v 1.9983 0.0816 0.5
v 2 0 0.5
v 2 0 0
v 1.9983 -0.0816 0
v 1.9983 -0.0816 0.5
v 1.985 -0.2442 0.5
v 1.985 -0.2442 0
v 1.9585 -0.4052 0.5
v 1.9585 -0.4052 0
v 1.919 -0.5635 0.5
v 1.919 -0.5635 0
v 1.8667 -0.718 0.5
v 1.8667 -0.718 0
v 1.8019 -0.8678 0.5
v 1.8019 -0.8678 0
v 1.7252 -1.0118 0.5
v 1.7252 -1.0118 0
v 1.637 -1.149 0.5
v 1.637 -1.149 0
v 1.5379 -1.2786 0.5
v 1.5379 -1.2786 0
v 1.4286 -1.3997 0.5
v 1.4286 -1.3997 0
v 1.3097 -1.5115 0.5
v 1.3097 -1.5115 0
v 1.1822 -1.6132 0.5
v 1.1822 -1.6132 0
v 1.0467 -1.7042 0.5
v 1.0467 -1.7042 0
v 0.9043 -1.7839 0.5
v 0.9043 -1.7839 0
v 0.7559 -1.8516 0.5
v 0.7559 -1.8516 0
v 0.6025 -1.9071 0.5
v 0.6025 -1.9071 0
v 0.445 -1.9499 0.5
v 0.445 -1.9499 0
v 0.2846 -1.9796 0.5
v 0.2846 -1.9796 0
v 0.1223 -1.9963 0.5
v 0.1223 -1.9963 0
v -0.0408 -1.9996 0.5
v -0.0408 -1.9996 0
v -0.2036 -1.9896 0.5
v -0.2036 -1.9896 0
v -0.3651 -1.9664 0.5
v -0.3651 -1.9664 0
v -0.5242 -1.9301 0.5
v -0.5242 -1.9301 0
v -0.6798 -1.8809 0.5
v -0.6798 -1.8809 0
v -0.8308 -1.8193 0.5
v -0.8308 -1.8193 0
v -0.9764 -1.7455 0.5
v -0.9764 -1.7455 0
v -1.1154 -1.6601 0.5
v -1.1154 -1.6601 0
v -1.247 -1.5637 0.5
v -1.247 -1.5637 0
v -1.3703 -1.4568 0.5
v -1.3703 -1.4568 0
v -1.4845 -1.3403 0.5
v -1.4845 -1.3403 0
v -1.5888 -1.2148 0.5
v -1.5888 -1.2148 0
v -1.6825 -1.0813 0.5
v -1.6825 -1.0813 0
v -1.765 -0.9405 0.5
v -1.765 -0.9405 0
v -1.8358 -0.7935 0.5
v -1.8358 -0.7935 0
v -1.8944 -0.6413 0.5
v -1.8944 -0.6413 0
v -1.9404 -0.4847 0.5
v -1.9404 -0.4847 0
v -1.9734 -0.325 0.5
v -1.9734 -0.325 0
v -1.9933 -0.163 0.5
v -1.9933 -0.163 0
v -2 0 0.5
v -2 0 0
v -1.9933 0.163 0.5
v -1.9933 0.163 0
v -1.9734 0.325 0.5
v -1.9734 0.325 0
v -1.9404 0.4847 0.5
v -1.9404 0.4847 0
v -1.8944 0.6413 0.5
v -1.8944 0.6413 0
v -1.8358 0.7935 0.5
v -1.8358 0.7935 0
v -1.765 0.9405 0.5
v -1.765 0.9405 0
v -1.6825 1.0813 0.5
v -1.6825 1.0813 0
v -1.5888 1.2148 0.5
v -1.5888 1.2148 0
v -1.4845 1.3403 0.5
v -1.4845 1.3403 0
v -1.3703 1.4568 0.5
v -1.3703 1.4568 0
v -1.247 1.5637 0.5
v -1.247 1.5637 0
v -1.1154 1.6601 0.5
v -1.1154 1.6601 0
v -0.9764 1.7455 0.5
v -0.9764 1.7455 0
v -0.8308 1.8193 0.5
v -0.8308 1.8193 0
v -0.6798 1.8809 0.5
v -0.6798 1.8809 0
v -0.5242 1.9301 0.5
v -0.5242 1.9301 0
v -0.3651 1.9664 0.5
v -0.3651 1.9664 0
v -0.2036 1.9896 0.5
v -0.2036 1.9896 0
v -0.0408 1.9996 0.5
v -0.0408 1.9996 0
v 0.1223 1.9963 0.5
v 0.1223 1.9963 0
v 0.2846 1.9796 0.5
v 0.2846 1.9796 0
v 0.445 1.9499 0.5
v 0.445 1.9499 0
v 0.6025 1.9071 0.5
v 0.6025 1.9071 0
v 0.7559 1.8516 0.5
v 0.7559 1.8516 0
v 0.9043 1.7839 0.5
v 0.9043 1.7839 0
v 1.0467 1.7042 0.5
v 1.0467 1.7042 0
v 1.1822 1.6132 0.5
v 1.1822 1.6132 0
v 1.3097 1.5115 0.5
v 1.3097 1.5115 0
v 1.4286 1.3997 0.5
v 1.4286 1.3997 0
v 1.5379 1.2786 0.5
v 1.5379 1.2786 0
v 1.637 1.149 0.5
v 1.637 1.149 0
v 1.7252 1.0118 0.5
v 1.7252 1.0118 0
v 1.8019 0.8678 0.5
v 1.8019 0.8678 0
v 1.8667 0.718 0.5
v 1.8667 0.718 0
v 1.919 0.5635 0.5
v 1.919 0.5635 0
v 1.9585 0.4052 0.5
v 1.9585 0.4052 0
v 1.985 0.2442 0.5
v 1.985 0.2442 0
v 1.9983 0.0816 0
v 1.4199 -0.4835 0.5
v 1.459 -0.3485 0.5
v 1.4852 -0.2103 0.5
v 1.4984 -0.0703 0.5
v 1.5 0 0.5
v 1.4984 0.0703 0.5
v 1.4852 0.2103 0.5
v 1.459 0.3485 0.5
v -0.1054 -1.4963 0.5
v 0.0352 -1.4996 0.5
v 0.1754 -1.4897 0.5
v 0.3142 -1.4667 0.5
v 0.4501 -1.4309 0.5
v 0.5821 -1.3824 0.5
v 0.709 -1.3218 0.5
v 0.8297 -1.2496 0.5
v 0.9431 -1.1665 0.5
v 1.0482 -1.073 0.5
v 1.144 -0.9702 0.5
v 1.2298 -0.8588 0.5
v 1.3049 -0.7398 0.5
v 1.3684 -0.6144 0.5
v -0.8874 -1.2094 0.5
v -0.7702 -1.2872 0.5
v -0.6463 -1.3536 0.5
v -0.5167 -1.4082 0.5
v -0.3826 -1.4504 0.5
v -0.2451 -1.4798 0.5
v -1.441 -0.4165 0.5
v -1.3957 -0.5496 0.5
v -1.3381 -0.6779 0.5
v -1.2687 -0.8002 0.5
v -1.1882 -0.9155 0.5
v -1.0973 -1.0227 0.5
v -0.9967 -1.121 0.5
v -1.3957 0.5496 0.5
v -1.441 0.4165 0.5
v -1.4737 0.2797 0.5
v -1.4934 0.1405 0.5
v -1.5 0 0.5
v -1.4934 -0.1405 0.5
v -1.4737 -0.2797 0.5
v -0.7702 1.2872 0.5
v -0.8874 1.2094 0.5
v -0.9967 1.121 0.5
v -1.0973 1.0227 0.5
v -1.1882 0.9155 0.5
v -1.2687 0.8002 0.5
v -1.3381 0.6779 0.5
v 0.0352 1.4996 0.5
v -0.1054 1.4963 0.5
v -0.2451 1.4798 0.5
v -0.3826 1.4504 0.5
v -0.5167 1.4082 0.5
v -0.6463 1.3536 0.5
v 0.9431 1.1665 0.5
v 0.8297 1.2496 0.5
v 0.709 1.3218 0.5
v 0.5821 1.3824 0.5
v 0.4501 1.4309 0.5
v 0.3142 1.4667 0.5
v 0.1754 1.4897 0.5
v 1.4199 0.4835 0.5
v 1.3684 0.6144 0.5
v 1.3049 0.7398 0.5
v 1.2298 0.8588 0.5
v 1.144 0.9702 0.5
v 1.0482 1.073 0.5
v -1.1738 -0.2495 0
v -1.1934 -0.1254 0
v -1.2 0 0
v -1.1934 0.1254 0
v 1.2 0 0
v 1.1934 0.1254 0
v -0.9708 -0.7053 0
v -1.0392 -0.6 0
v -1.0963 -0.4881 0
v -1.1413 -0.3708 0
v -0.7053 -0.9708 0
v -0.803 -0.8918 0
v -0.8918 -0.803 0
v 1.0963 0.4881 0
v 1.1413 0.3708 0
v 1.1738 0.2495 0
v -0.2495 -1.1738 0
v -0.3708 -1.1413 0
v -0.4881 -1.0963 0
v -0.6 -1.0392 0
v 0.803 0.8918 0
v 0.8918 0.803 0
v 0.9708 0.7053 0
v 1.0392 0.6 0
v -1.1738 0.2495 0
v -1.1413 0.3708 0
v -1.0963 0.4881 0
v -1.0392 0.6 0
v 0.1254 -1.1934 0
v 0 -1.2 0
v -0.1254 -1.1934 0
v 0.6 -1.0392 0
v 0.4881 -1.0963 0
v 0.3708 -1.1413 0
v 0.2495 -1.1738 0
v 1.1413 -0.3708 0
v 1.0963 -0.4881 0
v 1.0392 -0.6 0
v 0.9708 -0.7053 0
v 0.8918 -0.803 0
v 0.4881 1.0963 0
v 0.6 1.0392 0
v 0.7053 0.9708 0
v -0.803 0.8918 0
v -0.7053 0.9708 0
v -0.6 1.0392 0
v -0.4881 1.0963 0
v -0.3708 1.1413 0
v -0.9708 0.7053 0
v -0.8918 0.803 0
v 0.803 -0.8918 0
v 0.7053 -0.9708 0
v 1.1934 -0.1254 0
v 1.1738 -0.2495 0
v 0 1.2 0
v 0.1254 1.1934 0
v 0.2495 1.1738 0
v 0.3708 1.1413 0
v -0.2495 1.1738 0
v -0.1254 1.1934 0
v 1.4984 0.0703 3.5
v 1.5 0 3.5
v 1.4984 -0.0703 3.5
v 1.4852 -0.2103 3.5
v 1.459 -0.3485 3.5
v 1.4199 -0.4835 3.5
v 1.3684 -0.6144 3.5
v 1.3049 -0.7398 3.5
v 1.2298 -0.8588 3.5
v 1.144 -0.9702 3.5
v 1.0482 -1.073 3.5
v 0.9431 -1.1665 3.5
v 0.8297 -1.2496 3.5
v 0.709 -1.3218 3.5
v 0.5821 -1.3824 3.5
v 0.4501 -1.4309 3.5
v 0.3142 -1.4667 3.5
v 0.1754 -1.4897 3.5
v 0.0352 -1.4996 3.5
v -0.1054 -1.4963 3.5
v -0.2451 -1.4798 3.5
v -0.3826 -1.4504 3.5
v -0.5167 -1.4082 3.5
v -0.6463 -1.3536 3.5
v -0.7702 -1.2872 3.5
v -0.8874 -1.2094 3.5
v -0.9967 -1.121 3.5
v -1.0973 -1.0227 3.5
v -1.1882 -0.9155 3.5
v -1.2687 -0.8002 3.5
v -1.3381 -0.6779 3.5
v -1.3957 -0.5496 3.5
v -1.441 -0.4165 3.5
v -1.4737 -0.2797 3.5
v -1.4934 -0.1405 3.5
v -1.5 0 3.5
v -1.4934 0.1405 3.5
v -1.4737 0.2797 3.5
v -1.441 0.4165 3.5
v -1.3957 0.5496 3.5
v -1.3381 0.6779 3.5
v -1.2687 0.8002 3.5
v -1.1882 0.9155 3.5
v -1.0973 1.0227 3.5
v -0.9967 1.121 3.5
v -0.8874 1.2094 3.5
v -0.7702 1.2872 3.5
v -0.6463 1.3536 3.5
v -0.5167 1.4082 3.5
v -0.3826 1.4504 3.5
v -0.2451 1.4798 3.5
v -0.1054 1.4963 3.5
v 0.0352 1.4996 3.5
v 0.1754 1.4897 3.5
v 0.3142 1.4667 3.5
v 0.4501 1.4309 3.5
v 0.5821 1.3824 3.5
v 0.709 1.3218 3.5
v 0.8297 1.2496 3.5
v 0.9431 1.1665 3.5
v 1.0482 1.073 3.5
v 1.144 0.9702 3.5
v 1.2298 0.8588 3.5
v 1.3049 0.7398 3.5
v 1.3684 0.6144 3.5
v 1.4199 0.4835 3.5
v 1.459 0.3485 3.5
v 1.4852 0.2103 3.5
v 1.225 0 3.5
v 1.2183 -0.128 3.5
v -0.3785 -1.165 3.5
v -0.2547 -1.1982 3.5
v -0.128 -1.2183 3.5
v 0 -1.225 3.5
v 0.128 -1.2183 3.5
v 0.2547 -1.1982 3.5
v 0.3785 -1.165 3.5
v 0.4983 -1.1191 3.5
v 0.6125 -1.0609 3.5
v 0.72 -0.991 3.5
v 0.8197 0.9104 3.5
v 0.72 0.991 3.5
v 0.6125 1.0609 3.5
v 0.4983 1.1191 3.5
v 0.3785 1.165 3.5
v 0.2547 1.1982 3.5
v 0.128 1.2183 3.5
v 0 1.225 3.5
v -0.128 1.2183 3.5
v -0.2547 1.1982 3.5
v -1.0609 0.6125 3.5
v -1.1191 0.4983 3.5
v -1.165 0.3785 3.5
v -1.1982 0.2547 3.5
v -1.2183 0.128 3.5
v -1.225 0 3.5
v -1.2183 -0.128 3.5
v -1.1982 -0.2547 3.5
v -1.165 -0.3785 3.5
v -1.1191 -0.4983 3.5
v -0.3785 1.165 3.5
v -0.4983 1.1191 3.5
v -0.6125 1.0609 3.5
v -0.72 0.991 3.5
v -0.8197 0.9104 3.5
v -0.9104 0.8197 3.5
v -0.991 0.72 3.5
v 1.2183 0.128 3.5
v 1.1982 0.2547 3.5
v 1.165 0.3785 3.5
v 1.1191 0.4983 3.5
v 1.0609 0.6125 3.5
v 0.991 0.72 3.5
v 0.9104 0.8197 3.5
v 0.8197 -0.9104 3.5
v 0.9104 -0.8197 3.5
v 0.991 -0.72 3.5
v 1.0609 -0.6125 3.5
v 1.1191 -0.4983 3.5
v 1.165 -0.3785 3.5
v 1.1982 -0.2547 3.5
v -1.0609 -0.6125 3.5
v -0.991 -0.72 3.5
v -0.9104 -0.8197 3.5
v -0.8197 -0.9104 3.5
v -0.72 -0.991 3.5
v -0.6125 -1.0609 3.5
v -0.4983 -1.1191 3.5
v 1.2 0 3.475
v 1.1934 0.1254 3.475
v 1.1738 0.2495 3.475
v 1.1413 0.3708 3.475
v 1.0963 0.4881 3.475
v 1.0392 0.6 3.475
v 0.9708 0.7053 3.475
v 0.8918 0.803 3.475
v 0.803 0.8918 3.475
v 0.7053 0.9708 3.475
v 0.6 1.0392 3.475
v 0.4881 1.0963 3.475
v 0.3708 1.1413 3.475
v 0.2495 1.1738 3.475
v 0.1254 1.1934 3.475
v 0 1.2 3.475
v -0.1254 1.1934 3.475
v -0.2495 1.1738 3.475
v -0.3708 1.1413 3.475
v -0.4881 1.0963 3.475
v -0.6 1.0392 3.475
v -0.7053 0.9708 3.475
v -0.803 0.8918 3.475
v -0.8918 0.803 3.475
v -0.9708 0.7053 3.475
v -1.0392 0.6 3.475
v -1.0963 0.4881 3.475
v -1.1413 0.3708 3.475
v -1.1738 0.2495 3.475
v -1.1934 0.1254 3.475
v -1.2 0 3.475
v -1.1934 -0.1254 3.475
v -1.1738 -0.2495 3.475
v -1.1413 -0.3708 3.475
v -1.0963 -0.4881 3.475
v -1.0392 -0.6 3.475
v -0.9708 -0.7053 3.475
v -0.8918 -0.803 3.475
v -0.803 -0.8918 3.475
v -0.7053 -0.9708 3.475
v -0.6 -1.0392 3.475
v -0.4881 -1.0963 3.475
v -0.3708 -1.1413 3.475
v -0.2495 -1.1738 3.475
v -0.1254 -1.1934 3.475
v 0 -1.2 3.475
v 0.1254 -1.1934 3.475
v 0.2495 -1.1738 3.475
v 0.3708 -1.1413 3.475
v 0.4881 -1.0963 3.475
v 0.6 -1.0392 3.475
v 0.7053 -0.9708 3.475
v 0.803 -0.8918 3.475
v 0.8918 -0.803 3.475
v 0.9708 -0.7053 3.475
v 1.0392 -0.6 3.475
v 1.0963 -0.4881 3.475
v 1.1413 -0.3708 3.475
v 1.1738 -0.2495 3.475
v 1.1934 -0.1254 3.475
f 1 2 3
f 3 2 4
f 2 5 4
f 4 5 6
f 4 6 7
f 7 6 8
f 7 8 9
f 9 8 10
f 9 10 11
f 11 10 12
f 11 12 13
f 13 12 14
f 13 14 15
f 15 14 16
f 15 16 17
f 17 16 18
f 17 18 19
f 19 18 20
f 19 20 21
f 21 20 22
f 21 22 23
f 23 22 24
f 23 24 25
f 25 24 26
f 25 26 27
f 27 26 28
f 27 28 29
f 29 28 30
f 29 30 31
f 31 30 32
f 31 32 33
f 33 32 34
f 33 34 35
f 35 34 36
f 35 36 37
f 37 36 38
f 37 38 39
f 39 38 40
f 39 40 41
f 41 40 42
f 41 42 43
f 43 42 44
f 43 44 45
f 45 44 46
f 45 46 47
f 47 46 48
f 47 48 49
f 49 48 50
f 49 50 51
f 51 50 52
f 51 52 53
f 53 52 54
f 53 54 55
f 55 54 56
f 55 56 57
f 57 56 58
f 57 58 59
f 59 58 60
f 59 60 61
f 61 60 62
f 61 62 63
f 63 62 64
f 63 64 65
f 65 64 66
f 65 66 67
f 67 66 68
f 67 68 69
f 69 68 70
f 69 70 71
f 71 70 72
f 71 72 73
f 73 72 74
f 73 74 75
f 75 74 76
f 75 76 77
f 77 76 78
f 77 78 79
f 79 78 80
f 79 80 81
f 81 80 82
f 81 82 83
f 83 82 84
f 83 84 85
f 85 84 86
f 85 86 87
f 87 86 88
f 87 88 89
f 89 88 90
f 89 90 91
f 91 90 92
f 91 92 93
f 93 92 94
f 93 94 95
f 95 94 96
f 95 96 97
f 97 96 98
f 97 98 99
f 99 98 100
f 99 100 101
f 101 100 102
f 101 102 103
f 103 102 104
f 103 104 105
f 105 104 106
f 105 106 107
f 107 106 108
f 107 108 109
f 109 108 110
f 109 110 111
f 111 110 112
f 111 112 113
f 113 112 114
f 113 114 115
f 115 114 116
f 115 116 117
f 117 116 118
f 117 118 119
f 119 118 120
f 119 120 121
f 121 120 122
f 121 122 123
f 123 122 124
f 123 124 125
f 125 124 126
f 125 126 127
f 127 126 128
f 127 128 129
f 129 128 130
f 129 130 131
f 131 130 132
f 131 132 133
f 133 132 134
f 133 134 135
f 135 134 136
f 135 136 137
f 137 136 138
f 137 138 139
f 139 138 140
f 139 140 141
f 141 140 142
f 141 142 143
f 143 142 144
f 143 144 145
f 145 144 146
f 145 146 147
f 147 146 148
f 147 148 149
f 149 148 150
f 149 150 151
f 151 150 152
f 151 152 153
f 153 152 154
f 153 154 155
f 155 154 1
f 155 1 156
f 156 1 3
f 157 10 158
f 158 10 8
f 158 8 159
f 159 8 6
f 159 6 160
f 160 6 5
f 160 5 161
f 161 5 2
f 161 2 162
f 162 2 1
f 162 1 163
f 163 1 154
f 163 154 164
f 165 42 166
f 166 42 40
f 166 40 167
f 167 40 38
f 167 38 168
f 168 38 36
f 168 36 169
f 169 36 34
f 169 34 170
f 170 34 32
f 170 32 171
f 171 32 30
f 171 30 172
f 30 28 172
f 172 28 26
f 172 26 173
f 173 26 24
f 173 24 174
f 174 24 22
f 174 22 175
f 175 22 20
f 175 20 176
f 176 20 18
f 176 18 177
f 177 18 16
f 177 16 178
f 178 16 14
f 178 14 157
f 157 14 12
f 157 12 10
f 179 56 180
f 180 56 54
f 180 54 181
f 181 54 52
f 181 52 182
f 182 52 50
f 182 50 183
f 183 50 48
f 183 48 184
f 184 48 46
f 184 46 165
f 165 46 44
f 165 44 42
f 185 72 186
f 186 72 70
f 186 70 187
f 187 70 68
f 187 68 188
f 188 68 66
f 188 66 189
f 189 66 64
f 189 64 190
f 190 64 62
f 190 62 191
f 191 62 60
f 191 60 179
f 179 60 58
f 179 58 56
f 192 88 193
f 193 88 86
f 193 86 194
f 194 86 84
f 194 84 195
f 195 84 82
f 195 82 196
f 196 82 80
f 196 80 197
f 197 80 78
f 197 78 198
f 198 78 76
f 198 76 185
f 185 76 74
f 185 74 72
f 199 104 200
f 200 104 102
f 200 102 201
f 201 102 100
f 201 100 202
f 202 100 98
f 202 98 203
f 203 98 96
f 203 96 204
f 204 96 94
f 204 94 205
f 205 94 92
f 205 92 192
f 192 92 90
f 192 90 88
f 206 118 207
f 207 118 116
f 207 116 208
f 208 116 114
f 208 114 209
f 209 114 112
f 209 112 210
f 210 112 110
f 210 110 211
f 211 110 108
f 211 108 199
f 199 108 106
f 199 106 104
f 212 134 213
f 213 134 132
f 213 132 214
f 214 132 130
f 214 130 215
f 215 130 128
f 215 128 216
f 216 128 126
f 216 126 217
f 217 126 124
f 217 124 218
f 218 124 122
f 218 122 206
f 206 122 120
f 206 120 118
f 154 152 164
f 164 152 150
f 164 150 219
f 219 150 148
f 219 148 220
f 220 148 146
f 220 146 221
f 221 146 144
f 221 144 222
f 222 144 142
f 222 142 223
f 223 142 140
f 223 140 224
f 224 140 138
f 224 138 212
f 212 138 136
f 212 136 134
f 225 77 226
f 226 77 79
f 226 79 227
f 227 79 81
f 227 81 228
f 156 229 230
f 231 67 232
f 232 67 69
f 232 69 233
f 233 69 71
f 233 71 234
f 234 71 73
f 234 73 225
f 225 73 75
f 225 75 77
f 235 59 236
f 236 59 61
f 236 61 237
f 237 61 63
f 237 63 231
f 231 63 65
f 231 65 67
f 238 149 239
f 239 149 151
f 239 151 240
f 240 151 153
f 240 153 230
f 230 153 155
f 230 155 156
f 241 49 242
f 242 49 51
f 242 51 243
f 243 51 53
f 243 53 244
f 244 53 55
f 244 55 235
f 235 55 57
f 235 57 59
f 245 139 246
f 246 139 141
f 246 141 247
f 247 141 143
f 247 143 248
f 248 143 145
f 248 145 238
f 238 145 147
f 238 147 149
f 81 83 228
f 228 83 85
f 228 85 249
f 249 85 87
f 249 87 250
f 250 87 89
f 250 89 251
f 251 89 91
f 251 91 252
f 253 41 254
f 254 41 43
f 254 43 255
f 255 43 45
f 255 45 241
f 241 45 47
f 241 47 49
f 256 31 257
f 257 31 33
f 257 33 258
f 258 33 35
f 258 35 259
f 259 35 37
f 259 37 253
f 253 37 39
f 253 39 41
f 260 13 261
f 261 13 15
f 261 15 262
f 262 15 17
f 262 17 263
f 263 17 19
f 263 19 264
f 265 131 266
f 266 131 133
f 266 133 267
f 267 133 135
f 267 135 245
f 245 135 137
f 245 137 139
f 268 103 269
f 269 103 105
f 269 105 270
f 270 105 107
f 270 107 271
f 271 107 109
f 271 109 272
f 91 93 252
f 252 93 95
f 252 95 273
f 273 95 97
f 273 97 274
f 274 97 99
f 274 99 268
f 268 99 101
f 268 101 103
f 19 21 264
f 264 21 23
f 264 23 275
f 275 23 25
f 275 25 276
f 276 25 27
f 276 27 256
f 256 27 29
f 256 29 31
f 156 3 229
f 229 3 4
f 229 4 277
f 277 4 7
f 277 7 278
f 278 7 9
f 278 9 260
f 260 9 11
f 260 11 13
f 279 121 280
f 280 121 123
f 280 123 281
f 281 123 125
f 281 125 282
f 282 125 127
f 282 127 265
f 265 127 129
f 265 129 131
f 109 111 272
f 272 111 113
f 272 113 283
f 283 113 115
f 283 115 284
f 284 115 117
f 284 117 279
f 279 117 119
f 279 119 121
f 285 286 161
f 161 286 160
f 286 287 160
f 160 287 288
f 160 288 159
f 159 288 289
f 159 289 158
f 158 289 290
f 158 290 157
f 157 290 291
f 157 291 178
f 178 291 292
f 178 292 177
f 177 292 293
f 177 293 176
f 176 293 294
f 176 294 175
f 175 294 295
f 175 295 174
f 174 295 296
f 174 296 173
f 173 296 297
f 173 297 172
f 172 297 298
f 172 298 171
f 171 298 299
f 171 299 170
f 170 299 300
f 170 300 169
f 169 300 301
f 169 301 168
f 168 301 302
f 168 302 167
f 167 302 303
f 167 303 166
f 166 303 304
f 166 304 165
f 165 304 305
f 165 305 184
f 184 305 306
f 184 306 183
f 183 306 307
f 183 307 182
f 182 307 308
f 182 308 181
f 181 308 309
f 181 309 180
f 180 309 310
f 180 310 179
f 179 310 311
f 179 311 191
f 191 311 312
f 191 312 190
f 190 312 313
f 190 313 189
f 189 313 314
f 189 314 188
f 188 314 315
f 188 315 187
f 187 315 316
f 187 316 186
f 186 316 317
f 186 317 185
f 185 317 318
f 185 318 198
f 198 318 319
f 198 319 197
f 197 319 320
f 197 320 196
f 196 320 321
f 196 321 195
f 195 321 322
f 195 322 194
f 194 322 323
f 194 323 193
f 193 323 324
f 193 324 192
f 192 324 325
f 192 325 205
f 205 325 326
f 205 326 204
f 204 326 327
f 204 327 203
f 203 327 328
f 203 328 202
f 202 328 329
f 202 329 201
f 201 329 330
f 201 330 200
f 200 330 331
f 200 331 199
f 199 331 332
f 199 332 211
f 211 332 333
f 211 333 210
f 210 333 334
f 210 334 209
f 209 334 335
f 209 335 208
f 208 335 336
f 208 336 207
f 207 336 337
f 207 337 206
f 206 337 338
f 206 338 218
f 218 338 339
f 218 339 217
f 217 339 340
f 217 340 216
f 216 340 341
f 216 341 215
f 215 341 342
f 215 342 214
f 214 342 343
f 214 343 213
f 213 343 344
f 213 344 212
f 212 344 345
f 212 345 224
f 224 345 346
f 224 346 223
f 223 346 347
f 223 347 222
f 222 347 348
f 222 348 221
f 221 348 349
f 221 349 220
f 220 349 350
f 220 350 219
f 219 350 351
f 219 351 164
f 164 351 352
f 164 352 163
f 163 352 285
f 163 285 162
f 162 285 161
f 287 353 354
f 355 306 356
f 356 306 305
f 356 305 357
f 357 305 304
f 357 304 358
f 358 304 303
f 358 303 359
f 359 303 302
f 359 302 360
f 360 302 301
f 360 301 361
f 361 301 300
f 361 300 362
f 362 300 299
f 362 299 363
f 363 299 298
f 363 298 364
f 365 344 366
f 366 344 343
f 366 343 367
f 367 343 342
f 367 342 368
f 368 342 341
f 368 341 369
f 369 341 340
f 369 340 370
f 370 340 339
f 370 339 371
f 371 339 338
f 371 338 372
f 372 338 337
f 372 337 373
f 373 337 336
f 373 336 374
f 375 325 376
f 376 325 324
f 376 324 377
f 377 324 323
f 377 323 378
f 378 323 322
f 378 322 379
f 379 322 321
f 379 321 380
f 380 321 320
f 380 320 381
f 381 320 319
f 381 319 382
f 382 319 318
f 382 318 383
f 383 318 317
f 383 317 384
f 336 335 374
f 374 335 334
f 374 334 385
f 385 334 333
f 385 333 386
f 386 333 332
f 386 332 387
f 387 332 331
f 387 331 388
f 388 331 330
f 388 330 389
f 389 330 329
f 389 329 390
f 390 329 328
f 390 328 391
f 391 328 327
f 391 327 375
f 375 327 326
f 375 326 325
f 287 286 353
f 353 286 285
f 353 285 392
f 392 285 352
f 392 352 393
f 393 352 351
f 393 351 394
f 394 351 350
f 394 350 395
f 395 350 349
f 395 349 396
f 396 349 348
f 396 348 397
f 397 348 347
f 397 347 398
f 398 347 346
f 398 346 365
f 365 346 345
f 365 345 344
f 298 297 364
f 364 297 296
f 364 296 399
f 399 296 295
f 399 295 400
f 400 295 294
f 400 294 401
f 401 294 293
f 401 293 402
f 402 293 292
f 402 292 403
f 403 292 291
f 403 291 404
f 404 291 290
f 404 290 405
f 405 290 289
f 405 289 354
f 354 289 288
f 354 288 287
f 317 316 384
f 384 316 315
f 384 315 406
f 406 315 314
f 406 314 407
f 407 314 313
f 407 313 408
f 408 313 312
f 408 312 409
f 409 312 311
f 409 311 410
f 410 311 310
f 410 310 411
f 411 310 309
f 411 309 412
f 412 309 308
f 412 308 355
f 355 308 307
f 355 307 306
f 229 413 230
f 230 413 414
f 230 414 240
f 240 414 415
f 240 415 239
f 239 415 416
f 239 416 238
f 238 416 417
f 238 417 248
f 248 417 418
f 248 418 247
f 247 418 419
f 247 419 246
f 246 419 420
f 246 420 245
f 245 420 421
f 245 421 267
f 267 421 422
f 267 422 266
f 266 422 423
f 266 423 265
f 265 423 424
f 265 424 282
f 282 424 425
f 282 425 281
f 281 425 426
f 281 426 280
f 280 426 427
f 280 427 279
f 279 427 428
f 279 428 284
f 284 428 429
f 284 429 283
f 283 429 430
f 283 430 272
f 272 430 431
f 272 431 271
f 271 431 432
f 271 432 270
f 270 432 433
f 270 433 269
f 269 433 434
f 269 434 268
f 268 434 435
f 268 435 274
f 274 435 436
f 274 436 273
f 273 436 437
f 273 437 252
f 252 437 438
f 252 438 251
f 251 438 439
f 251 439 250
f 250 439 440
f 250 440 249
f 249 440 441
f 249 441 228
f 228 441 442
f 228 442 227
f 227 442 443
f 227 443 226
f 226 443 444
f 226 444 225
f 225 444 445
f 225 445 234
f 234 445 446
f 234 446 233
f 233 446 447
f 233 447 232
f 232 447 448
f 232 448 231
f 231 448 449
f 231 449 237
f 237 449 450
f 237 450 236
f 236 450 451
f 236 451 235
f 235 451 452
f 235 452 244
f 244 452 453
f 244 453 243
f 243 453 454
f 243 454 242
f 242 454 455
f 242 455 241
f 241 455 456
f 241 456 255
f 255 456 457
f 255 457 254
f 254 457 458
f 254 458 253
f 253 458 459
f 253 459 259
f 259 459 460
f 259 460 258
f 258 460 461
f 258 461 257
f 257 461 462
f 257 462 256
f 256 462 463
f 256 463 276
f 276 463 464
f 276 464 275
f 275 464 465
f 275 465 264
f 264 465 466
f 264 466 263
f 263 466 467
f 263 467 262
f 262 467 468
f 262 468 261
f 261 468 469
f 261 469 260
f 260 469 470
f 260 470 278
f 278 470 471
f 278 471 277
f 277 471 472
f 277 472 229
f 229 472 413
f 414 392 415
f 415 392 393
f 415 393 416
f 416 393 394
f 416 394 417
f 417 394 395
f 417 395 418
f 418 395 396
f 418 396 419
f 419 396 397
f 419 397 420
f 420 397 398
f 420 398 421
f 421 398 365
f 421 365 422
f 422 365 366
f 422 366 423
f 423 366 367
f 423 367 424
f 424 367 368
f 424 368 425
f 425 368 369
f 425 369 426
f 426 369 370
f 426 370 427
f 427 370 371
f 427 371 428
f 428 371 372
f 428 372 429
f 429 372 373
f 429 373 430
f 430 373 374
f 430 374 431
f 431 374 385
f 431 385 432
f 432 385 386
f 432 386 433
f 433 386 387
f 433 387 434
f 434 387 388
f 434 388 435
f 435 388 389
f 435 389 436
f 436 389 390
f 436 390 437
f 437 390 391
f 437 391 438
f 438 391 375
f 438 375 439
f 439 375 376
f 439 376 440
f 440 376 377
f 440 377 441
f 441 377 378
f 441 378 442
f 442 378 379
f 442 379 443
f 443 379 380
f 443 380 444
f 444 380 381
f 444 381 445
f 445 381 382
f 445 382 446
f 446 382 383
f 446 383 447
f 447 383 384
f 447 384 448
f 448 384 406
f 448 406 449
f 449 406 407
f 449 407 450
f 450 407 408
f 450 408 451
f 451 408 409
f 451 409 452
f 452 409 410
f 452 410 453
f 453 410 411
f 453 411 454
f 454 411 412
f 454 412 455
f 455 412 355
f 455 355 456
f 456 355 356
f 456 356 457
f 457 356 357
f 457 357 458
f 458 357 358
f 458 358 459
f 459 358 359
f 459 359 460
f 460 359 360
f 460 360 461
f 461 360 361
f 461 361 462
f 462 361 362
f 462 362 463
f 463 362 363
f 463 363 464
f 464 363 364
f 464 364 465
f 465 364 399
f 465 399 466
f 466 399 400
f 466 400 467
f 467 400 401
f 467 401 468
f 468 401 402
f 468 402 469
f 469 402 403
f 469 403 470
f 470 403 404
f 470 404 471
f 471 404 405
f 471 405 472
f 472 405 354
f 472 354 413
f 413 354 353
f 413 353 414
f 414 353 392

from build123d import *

# Parameters (mm, degrees)
SKETCH_1_R                   = 2
EXTRUDE_1_DEPTH              = 0.5
SKETCH_2_R                   = 1.5
EXTRUDE_2_DEPTH              = 3
HOLE_WIZARD_M2_1_D           = 2.4
HOLE_WIZARD_M2_1_CSINK_D     = 2.45
HOLE_WIZARD_M2_1_CSINK_ANGLE = 90


with BuildPart() as part:
    # 草图1 → 凸台-拉伸1 (new body)
    with BuildSketch(Plane.XY):
        Circle(SKETCH_1_R)
    extrude(amount=EXTRUDE_1_DEPTH)

    # 草图2 → 凸台-拉伸2 (add)
    with BuildSketch(Plane.XY.offset(0.5)):
        Circle(SKETCH_2_R)
    extrude(amount=EXTRUDE_2_DEPTH)

    # M2 间隙孔1 (through all)
    with Locations(Plane.XY.offset(3.5)):
        with Locations((0, 0)):
            CounterSinkHole(HOLE_WIZARD_M2_1_D / 2, HOLE_WIZARD_M2_1_CSINK_D / 2, counter_sink_angle=HOLE_WIZARD_M2_1_CSINK_ANGLE)


solid = part.part
